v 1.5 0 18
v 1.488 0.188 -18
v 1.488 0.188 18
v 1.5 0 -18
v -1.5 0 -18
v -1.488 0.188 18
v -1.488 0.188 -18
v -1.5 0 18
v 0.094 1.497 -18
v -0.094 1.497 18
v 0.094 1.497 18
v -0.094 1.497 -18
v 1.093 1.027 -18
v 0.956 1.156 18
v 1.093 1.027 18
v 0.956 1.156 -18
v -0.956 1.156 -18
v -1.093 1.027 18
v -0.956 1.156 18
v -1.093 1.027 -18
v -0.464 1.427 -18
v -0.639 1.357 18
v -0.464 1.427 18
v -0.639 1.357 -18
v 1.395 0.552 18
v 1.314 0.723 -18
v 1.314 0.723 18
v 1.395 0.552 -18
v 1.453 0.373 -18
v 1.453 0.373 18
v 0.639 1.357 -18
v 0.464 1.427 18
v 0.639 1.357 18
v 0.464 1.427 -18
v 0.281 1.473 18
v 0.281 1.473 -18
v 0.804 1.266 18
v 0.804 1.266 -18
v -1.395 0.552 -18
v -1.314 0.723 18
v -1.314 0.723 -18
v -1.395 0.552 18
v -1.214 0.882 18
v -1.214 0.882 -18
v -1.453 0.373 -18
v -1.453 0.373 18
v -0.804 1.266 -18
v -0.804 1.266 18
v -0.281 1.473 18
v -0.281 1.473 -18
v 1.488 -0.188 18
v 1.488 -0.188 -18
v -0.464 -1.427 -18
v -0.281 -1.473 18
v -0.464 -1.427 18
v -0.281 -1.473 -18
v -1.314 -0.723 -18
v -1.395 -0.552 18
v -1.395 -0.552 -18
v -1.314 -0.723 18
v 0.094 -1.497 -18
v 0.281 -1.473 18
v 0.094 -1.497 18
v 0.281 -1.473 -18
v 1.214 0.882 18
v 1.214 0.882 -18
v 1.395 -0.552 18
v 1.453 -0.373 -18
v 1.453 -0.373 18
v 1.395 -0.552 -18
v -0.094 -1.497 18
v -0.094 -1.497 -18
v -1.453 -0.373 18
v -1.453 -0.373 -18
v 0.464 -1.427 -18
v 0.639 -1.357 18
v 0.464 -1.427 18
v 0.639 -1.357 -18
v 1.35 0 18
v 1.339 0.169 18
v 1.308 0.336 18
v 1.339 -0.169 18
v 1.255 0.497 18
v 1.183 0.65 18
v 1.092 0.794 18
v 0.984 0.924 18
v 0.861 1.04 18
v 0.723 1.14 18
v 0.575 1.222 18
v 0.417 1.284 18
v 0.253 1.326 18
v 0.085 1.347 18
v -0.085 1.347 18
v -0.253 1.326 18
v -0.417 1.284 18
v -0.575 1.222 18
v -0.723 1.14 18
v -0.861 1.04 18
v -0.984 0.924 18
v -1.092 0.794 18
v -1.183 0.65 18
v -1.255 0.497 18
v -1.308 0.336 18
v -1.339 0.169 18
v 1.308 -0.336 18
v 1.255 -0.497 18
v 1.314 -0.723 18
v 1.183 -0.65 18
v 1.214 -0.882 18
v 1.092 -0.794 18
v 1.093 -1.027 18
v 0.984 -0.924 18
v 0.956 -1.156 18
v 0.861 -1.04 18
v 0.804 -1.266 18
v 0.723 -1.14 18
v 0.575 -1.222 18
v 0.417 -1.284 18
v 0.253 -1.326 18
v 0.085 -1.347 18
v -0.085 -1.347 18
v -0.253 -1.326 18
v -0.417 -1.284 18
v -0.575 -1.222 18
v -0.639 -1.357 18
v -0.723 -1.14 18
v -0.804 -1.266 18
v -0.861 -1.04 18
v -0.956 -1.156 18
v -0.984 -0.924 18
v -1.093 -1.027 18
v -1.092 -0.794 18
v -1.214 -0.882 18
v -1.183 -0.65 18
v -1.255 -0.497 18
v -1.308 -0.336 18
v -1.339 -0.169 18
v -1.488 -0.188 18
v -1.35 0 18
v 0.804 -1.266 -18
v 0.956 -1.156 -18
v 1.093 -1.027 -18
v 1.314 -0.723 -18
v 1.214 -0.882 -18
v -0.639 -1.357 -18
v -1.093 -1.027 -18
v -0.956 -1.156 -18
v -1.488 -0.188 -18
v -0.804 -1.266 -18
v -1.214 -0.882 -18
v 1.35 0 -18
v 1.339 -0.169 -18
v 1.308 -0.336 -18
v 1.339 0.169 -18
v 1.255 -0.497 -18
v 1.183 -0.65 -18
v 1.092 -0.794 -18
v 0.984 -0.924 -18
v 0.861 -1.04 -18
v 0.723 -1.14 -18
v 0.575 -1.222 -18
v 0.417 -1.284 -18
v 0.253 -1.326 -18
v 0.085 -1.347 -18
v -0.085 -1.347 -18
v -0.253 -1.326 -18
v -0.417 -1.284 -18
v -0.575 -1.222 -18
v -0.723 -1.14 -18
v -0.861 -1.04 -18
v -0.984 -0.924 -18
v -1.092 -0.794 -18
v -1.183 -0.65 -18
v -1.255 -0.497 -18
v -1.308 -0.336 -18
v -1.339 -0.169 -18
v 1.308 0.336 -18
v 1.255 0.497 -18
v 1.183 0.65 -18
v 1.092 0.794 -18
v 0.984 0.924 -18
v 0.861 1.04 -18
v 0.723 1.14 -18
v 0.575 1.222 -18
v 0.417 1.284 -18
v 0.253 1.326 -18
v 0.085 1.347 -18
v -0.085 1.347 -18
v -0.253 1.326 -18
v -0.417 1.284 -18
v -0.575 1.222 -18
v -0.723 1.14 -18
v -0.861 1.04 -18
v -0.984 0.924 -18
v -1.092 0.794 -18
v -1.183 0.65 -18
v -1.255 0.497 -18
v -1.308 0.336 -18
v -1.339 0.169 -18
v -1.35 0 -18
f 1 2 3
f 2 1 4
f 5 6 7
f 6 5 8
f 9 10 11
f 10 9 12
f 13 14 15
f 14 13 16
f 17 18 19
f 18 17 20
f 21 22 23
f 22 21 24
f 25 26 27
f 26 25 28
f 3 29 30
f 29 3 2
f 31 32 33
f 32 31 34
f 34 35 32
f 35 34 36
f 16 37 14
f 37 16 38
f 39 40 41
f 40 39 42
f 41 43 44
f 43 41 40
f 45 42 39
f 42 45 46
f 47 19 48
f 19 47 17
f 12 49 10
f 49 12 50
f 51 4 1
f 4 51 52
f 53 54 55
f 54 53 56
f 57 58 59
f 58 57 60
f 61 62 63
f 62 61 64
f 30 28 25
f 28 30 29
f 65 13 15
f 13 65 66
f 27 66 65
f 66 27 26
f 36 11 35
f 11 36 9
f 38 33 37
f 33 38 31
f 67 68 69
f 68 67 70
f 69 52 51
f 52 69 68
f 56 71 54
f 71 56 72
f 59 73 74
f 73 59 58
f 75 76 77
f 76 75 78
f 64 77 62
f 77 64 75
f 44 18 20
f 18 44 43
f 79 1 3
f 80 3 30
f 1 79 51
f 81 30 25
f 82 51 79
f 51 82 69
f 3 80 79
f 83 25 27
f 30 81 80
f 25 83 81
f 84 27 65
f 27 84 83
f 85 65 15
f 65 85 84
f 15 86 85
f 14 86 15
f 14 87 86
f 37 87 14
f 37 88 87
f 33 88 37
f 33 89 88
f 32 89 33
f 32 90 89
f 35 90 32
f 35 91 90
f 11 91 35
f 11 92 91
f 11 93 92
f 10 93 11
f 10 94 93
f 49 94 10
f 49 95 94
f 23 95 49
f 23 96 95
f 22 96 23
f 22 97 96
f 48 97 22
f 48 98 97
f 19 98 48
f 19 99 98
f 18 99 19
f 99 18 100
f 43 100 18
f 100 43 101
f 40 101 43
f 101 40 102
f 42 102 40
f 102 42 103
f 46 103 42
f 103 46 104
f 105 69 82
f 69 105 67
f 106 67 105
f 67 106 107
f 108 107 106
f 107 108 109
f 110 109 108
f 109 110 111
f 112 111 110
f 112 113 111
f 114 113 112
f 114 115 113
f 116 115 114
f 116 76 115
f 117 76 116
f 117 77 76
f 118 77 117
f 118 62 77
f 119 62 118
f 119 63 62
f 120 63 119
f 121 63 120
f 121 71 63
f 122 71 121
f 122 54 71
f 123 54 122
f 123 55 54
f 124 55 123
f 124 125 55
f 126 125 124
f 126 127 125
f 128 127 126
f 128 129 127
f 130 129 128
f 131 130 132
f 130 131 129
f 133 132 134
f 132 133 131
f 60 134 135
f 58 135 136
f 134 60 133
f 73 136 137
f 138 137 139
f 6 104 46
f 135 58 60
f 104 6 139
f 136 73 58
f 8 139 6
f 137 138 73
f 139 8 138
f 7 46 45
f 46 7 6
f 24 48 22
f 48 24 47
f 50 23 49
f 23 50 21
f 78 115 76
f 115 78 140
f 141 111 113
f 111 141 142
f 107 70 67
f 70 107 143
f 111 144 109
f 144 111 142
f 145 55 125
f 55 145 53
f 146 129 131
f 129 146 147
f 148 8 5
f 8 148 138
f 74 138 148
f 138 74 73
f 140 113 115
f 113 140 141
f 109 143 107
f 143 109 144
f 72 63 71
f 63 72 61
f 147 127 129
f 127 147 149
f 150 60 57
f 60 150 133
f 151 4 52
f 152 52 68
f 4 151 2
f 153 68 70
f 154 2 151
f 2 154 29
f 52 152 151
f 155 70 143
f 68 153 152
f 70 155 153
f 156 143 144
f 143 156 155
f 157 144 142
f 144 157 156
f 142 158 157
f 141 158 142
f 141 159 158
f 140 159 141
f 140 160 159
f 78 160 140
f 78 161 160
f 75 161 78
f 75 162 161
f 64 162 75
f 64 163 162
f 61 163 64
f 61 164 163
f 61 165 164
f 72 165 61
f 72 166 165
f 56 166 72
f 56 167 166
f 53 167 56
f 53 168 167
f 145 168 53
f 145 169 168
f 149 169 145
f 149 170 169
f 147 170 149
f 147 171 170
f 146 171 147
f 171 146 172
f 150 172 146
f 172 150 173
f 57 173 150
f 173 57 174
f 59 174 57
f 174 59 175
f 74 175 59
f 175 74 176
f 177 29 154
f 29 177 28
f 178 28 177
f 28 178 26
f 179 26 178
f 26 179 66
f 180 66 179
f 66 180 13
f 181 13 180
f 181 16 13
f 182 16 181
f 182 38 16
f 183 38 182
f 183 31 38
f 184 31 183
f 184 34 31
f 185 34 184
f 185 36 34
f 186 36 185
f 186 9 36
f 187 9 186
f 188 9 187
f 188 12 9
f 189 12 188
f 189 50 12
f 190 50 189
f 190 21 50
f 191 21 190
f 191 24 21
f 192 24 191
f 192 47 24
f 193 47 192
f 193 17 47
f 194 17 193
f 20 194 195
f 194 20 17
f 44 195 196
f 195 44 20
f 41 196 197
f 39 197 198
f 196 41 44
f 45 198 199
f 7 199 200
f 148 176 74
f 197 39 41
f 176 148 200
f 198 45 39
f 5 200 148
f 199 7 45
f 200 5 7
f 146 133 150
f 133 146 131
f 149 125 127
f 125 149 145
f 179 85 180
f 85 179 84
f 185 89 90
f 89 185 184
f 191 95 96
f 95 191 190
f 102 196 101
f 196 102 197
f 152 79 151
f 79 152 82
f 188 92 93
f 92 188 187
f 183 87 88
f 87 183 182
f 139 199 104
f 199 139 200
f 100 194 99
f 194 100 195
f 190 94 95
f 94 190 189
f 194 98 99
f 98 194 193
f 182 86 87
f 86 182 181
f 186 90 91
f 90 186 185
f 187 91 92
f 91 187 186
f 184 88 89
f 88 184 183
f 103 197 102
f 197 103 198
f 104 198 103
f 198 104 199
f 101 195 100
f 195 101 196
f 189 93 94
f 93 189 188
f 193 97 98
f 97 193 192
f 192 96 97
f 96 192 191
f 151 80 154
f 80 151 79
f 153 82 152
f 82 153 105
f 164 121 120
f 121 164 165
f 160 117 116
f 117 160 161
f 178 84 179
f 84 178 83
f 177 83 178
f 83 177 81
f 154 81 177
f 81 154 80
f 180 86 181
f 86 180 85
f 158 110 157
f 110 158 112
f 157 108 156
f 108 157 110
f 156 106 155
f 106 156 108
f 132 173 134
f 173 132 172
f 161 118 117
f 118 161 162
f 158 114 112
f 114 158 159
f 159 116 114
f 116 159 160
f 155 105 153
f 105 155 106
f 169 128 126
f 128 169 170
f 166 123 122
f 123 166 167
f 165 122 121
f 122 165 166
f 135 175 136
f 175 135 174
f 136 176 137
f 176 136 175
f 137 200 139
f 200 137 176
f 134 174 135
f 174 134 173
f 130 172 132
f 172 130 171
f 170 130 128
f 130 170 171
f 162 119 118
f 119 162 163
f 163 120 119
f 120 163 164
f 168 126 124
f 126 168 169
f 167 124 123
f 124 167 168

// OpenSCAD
$fn = 50;


difference() {
	union() {
		translate(v = [0, 0, -18.0000000000]) {
			cylinder(h = 36, r = 1.5000000000);
		}
	}
	union() {
		translate(v = [0, 0, -100.0000000000]) {
			cylinder(h = 200, r = 1.3500000000);
		}
	}
}
